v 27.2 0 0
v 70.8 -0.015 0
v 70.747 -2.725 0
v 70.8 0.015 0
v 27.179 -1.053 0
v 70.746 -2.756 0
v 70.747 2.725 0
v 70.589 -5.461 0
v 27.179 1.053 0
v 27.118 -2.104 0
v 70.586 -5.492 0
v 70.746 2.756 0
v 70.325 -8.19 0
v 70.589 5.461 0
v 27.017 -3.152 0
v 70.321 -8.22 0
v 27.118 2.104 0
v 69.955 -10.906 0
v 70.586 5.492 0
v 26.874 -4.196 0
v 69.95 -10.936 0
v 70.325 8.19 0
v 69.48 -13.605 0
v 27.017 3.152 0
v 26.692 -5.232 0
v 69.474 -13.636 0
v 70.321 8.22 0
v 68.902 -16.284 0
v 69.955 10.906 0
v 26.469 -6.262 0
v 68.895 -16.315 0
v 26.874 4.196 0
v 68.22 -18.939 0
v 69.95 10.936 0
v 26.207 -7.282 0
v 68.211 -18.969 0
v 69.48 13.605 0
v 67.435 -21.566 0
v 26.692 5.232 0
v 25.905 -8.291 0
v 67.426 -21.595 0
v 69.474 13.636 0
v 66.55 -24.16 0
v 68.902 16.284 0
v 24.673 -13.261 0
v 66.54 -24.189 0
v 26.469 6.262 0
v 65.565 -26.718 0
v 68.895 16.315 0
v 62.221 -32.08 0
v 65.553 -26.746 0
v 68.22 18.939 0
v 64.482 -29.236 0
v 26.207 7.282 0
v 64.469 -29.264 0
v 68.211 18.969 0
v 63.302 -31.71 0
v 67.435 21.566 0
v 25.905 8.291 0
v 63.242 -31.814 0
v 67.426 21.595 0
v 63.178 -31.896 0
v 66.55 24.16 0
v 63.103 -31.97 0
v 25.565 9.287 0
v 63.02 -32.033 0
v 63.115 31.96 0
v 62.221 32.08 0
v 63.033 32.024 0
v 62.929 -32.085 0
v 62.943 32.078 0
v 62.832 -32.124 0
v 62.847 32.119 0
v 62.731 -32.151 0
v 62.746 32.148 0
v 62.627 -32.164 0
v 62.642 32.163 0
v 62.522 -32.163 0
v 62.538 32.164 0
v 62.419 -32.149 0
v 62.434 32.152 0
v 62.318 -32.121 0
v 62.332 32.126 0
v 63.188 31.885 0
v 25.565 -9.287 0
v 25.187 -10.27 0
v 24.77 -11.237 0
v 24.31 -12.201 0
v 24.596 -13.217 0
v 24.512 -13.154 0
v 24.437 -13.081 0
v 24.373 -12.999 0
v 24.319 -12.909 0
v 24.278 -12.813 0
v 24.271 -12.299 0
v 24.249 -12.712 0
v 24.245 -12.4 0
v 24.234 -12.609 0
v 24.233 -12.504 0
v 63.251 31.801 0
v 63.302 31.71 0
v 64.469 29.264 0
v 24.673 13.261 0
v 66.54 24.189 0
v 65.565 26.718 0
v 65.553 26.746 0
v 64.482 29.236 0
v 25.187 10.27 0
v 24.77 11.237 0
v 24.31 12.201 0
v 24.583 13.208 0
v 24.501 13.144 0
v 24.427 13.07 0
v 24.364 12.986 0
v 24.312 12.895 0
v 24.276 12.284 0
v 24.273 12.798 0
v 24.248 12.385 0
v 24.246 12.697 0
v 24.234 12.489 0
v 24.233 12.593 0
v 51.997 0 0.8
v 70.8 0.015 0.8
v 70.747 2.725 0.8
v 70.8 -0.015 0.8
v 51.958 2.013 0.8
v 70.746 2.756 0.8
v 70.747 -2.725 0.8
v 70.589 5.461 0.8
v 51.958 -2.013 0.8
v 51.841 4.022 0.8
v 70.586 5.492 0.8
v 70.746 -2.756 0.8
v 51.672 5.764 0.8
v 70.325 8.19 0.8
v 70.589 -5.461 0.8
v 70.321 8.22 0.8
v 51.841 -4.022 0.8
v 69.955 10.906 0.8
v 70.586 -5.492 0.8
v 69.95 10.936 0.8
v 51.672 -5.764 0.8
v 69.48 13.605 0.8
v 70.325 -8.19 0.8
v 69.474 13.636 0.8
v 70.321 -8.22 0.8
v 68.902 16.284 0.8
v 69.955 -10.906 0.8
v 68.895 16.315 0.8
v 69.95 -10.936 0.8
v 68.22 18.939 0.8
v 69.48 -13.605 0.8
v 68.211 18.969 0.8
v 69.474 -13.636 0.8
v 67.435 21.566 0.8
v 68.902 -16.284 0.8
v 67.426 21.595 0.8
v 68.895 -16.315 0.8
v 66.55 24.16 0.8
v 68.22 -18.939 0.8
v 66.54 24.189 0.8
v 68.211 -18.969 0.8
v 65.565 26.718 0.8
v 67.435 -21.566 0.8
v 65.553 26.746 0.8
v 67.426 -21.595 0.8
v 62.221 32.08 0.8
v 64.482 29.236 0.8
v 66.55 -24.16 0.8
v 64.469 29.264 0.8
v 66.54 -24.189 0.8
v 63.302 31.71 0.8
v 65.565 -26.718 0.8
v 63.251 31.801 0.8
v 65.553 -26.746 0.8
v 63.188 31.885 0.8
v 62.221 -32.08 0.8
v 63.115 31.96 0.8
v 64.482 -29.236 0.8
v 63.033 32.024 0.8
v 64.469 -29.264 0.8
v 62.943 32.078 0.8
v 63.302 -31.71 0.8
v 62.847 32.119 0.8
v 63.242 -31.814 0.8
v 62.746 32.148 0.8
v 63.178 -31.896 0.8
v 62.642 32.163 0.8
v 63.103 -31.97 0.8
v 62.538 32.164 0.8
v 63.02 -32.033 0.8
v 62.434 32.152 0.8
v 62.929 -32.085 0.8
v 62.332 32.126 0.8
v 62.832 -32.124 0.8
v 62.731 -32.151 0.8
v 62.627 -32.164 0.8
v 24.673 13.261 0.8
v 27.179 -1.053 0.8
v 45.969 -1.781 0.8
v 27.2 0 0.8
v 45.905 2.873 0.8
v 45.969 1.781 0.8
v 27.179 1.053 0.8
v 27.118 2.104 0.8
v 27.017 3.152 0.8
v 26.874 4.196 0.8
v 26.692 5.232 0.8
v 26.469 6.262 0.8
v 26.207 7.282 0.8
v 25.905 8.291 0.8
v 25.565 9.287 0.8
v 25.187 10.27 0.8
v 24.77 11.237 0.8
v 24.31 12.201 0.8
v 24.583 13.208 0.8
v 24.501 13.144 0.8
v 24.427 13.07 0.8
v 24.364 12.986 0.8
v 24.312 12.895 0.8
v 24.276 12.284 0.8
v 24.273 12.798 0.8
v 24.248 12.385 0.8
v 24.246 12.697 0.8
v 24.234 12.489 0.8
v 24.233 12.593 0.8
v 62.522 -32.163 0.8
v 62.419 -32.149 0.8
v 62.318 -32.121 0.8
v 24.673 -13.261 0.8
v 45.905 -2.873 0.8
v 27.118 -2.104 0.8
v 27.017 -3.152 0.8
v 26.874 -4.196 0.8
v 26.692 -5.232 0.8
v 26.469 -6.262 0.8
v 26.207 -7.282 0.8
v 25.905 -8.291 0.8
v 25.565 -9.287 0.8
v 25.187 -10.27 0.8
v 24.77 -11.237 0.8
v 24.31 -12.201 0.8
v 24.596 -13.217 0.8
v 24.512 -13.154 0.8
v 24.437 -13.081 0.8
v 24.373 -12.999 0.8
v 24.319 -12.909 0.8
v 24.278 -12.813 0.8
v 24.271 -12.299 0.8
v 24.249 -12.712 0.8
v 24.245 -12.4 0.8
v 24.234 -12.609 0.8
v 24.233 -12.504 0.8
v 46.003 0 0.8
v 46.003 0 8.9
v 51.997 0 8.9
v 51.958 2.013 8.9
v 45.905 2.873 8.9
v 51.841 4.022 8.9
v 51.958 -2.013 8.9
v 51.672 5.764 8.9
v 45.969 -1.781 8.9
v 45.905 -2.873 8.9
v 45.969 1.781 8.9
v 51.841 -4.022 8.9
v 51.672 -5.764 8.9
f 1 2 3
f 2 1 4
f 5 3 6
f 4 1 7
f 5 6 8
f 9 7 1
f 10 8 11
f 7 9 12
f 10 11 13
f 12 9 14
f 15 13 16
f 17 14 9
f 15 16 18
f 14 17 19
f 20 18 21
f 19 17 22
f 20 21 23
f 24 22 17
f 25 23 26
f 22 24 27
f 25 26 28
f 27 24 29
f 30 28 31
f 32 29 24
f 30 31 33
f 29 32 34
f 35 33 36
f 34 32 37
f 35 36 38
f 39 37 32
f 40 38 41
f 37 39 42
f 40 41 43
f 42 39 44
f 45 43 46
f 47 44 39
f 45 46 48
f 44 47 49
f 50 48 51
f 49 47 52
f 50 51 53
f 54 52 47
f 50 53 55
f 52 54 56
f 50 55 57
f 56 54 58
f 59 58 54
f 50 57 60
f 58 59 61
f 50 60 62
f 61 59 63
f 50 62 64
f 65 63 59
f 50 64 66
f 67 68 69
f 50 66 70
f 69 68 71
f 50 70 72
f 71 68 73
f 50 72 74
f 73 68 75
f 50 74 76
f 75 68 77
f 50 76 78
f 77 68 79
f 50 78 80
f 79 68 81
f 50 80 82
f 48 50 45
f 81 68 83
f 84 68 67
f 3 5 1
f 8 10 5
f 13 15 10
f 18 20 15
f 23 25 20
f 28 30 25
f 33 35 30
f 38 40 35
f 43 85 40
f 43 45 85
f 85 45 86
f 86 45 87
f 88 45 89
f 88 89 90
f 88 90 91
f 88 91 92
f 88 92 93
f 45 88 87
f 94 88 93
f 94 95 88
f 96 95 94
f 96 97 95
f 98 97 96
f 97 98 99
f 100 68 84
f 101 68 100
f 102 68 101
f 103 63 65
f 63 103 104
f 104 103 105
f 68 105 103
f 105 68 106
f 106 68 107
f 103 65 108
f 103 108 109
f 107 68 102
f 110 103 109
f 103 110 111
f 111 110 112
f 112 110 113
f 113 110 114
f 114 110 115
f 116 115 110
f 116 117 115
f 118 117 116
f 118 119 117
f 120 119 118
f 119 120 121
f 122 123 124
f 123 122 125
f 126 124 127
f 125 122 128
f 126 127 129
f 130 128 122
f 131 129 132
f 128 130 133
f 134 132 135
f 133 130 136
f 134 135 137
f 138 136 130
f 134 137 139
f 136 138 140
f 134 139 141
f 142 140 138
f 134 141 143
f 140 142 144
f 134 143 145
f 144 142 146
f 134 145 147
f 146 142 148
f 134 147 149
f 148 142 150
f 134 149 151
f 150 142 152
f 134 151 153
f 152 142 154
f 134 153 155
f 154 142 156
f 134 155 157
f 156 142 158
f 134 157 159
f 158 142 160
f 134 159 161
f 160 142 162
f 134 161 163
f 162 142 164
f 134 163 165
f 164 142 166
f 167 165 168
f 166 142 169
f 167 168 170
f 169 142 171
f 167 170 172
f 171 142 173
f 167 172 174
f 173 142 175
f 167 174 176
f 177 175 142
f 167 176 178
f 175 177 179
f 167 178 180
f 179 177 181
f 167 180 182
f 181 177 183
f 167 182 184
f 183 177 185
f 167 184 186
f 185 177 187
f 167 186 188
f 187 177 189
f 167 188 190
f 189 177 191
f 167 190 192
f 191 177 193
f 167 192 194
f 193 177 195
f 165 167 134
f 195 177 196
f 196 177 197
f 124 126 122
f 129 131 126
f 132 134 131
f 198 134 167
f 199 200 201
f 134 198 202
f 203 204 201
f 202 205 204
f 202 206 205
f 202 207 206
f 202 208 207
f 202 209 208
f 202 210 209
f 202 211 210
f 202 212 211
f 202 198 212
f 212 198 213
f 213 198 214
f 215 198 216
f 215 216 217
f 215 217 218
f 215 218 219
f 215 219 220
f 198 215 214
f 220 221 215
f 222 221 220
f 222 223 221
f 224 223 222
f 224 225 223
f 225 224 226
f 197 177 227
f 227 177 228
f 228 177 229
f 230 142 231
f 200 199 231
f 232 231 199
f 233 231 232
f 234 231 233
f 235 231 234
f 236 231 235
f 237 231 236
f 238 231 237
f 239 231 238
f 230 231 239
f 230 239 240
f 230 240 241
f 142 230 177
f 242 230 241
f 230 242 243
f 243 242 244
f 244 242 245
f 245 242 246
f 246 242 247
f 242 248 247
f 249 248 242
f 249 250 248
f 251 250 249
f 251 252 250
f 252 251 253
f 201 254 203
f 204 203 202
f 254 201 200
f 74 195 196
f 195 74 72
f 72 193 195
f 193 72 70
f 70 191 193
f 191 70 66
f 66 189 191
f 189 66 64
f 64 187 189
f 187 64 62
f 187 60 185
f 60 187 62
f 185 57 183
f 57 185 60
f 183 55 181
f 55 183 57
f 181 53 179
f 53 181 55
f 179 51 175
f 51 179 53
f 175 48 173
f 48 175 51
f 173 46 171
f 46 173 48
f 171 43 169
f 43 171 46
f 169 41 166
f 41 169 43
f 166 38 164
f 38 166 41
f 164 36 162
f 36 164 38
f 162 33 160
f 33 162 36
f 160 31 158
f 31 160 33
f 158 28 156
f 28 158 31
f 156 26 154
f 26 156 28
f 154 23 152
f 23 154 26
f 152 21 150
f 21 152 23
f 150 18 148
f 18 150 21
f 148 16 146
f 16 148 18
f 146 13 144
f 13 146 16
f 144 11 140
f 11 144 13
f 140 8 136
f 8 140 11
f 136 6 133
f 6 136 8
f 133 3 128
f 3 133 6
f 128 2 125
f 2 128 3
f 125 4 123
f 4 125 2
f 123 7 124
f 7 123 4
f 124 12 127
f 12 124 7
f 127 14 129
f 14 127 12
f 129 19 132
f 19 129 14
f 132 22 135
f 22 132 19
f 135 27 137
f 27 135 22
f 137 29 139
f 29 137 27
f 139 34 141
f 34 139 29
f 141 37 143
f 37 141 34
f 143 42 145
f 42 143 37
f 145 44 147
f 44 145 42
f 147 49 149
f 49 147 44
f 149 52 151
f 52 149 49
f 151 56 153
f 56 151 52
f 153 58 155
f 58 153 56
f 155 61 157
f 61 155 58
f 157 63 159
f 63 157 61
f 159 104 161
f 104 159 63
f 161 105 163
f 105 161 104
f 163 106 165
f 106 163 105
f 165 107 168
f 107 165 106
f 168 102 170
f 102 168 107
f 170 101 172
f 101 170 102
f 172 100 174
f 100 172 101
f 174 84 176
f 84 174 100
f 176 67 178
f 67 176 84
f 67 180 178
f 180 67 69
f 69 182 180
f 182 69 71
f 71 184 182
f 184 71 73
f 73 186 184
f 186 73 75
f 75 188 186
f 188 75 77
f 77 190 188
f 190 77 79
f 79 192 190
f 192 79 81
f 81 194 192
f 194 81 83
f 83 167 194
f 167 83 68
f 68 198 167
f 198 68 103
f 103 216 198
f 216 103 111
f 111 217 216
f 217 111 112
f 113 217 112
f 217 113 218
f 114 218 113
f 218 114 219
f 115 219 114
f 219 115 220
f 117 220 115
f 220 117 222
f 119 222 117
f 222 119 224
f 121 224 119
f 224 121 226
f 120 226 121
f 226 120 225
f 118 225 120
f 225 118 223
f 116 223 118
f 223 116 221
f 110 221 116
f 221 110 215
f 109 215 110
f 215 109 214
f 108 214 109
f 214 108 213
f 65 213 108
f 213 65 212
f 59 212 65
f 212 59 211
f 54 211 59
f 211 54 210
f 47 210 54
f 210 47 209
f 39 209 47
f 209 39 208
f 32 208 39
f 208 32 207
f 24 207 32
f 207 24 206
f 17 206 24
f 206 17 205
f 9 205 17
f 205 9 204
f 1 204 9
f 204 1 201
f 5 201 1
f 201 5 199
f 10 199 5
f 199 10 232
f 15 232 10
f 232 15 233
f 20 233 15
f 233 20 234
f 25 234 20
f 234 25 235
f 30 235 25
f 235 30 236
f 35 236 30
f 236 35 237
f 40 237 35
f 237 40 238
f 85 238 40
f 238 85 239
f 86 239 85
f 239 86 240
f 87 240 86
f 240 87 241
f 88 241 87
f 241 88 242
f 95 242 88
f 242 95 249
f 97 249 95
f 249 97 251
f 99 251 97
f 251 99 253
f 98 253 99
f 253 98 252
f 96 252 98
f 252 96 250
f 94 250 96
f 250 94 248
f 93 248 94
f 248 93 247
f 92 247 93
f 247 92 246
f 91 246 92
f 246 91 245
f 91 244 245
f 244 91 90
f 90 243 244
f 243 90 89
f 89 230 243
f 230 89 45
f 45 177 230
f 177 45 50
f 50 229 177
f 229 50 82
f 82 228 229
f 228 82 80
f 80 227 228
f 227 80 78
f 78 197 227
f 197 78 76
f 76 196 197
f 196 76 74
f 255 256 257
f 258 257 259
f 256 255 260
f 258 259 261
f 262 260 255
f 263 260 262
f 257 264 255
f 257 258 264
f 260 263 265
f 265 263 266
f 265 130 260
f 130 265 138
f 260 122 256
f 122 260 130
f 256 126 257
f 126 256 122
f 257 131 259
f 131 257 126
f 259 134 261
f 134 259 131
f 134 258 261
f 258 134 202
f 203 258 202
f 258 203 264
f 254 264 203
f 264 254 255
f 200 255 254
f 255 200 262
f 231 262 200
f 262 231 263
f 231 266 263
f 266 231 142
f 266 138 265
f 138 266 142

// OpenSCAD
// file: parameters.scad
// =============================================================================
// Gen-BO — nightly 2026-10-07 (physics_scorer, honest magpylib watts)
// Flush seat + wider copper + tight assists: the magnets sit on the steel in 5.00 mm through-pockets (carrier = magnet height, recess 0 instead of 0.10 mm), so the magnet faces are 0.2 mm closer while still exactly 0.50 mm from the wound envelope; the bobbin lip beyond the copper is trimmed 1.0 → 0.8 mm (still the 0.8 mm wall minimum, stator web still 1.2 mm), which widens each copper sector by ~0.6° on 28–70 mm × 18.0 mm-build bobbins; and the diametric Ø5 assists are pulled in to R43/50/57 (±7 mm) where they add most flux under the copper. Same Ø134 × 4.76 mm steel discs as Gen-BL.
// Clocking 0 deg (magnets N facing S) + D-flat keyed bore + index notch + flip-symmetric hole map.
// Windable 2-piece bobbin; turns = physics_scorer turns_fit; copper only between flanges.
// Steel back-iron: 2× Ø134 × 4.76 mm (3/16") mild-steel discs (steel_backiron_disc.dxf); magnets sit ON the steel
// (through-pockets) -> score with --back-iron.
// =============================================================================
topology            = "dual_rotor";

// --- Wire / winding (physics_scorer winding-fit) -------------------------------
wire_awg            = 26;
wire_od             = 0.45;     // insulated OD mm (bare 0.405)
fill_realistic      = 0.65;     // insulated-wire area / window (DENSE layered wind with a jig; scorer cap 0.65)
turns               = 595;       // = physics_scorer turns_fit (do NOT raise)
coil_former_type    = "bobbin";
coil_core_inset     = 18.00;     // radial copper build: hub = copper boundary inset by this
wind_build_axial    = 0.0;      // nothing proud of the flanges
wind_build_radial   = 0.0;

// --- Bobbin (base + lid) ---------------------------------------------------------
coil_id_r           = 28.00;    // copper boundary sector
coil_od_r           = 70.00;
span_deg            = 53.24;    // = pitch - 2*asin((wall+0.85)/coil_id_r) -> >=1.2 mm stator web
former_web          = 8.10;     // copper height between flanges (TALL copper: steel keeps Bz up)
flange_t            = 0.80;     // >= 0.8 mm FDM wall rule (tall winds push on the flanges)
wall                = 0.80;     // flange lip beyond copper
former_bare_h       = former_web + 2 * flange_t;
coil_envelope_h     = former_bare_h + 2 * wind_build_axial;
tab_w               = 7.0;
tab_len             = 7.0;
tab_h               = former_bare_h / 2;
pin_d               = 1.9;      // 1.75 mm filament locating pin
coil_mount_r        = coil_od_r + 0.2 + 4.0;
lead_y              = 1.6;
lead_slot_w         = 0.9;
lead_groove_d       = 0.6;

// --- Gap -------------------------------------------------------------------------
run_clear           = 0.50;     // rotor face -> flange
gap_spacer_h        = run_clear + wind_build_axial;
m2m                 = coil_envelope_h + 2 * run_clear;   // rotor face to rotor face (= gap_sleeve length)

// --- Stator ----------------------------------------------------------------------
coil_stations       = 6;
bay_clear           = 0.25;
stator_thick        = former_bare_h;                        // bobbins flush both faces
stator_od           = 158;
shaft_clear_stator  = 14.0;     // stator is static; gap sleeve OD 12 spins inside

// --- Rotor(s) --------------------------------------------------------------------
magnet_Br           = 1.43;     // N52
magnet_d_large      = 20.0;
magnet_h_large      = 5.0;      // one O20x5 per pocket
magnet_h_small      = 5.0;      // one O5x5 per pocket
halbach_magnetisation = "diametric"; // O5x5 assist magnets MUST be DIAMETRICALLY magnetised (tangential)
rotor_b_same_axis   = true;     // same-index magnets share one axis: N faces S across the gap
large_pocket_d      = 20.3;
small_pocket_d      = 5.3;
pocket_h            = 5.00;     // THROUGH the carrier: magnet back face sits on the steel disc (FLUSH seat: carrier = magnet height, magnet face level with the rotor face)
large_n             = 8;
R_large             = 50.0;
R_small_inner       = 43.0;
R_small_mid         = 50.0;
R_small_outer       = 57.0;
small_r_list        = [R_small_inner, R_small_mid, R_small_outer];   // O5 pockets between poles
carrier_od          = 134.0;
carrier_thick       = pocket_h;
hub_h               = 12.0;     // > steel_t + insert: radial set-screw clears the steel
hub_od              = 24.0;     // slim hub so the M4 brace rods fit at R~18 inside the coil ring
hub_insert_d        = 4.0;      // M3 heat-set insert, radial, bears on the D-flat
rotor_b_offset_deg  = 0.0;      // CLOCKING: magnets directly opposite
shaft_key           = "dflat";
dflat_depth         = 0.5;      // 8 mm shaft with 0.5 mm flat (7.5 across flat)
index_notch_d       = 3.0;

// --- Steel back-iron (buyable laser-cut) -------------------------------------------
steel_t             = 4.76;      // mild steel thickness (image method ignores it; sized from steel_flux.py so the return path stays well below saturation)
steel_center_hole   = 26.0;     // slips over the rotor hub (OD 24)
steel_od            = carrier_od;   // steel disc OD = rotor carrier OD

// --- Modular MAX interface ----------------------------------------------------------
shaft_bore          = 8.35;
dflat_x             = 4.0 - dflat_depth + (shaft_bore - 8.0) / 2;
bearing_d           = 21.85;
bearing_h           = 7.2;
m3_clear            = 3.5;
bolt_r_inner        = 30.0;     // M3 steel-disc clamp bolts (inside the magnet ring)
bolt_n_inner        = 4;
bolt_inner_angles   = [0, 90, 180, 270];
bolt_r_outer        = 63.0;     // M3 steel-disc clamp bolts (outside the magnet ring)
bolt_outer_angles   = [45, 135, 225, 315];
flange_bolt_r       = 73.0;     // frame rods: OUTSIDE the rotor OD (rotors spin inside them)
flange_bolt_n       = 6;
flange_bolt_offset  = 30.00;    // between coil stations -> never cuts a lead groove/tab
brace_r             = 18.0;
brace_d             = 4.3;      // temporary M4 jack rods (assembly only)
brace_n             = 4;
brace_angles        = [45, 135, 225, 315];          // flip-symmetric

spacer_pad_od       = 14.0;
spacer_pad_id       = m3_clear;
endbell_od          = 158;
endbell_thick       = 8.0;
endbell_shaft_clear = 10.0;
collar_h            = 10.0;
standoff_od         = 9.0;
frame_standoff_h    = run_clear + carrier_thick + hub_h + collar_h + 2.0;
sleeve_od           = 12.0;
plate_max_mm        = 410;

$fn = 64;
// main file
// Gen-BO — bobbin BASE (bottom flange + hub). Print x6, flange down. Wind 26 AWG x 595 t around
// the hub with the LID glued on (coil_lid.stl). Copper lives ONLY between the flanges (no proud winds).
include <parameters.scad>;
$fn = 48;
module sector_2d(r_in, r_out, ang) {
    polygon([
        for (a = [-ang/2 : ang/24 : ang/2]) [r_in*cos(a), r_in*sin(a)],
        for (a = [ang/2 : -ang/24 : -ang/2]) [r_out*cos(a), r_out*sin(a)]
    ]);
}
module footprint_2d() { offset(r=wall) sector_2d(coil_id_r, coil_od_r, span_deg); }
module hub_2d()       { offset(delta=-coil_core_inset) sector_2d(coil_id_r, coil_od_r, span_deg); }

union() {
    linear_extrude(flange_t) footprint_2d();
    translate([0, 0, flange_t - 0.01]) linear_extrude(former_web + 0.01) hub_2d();
}
